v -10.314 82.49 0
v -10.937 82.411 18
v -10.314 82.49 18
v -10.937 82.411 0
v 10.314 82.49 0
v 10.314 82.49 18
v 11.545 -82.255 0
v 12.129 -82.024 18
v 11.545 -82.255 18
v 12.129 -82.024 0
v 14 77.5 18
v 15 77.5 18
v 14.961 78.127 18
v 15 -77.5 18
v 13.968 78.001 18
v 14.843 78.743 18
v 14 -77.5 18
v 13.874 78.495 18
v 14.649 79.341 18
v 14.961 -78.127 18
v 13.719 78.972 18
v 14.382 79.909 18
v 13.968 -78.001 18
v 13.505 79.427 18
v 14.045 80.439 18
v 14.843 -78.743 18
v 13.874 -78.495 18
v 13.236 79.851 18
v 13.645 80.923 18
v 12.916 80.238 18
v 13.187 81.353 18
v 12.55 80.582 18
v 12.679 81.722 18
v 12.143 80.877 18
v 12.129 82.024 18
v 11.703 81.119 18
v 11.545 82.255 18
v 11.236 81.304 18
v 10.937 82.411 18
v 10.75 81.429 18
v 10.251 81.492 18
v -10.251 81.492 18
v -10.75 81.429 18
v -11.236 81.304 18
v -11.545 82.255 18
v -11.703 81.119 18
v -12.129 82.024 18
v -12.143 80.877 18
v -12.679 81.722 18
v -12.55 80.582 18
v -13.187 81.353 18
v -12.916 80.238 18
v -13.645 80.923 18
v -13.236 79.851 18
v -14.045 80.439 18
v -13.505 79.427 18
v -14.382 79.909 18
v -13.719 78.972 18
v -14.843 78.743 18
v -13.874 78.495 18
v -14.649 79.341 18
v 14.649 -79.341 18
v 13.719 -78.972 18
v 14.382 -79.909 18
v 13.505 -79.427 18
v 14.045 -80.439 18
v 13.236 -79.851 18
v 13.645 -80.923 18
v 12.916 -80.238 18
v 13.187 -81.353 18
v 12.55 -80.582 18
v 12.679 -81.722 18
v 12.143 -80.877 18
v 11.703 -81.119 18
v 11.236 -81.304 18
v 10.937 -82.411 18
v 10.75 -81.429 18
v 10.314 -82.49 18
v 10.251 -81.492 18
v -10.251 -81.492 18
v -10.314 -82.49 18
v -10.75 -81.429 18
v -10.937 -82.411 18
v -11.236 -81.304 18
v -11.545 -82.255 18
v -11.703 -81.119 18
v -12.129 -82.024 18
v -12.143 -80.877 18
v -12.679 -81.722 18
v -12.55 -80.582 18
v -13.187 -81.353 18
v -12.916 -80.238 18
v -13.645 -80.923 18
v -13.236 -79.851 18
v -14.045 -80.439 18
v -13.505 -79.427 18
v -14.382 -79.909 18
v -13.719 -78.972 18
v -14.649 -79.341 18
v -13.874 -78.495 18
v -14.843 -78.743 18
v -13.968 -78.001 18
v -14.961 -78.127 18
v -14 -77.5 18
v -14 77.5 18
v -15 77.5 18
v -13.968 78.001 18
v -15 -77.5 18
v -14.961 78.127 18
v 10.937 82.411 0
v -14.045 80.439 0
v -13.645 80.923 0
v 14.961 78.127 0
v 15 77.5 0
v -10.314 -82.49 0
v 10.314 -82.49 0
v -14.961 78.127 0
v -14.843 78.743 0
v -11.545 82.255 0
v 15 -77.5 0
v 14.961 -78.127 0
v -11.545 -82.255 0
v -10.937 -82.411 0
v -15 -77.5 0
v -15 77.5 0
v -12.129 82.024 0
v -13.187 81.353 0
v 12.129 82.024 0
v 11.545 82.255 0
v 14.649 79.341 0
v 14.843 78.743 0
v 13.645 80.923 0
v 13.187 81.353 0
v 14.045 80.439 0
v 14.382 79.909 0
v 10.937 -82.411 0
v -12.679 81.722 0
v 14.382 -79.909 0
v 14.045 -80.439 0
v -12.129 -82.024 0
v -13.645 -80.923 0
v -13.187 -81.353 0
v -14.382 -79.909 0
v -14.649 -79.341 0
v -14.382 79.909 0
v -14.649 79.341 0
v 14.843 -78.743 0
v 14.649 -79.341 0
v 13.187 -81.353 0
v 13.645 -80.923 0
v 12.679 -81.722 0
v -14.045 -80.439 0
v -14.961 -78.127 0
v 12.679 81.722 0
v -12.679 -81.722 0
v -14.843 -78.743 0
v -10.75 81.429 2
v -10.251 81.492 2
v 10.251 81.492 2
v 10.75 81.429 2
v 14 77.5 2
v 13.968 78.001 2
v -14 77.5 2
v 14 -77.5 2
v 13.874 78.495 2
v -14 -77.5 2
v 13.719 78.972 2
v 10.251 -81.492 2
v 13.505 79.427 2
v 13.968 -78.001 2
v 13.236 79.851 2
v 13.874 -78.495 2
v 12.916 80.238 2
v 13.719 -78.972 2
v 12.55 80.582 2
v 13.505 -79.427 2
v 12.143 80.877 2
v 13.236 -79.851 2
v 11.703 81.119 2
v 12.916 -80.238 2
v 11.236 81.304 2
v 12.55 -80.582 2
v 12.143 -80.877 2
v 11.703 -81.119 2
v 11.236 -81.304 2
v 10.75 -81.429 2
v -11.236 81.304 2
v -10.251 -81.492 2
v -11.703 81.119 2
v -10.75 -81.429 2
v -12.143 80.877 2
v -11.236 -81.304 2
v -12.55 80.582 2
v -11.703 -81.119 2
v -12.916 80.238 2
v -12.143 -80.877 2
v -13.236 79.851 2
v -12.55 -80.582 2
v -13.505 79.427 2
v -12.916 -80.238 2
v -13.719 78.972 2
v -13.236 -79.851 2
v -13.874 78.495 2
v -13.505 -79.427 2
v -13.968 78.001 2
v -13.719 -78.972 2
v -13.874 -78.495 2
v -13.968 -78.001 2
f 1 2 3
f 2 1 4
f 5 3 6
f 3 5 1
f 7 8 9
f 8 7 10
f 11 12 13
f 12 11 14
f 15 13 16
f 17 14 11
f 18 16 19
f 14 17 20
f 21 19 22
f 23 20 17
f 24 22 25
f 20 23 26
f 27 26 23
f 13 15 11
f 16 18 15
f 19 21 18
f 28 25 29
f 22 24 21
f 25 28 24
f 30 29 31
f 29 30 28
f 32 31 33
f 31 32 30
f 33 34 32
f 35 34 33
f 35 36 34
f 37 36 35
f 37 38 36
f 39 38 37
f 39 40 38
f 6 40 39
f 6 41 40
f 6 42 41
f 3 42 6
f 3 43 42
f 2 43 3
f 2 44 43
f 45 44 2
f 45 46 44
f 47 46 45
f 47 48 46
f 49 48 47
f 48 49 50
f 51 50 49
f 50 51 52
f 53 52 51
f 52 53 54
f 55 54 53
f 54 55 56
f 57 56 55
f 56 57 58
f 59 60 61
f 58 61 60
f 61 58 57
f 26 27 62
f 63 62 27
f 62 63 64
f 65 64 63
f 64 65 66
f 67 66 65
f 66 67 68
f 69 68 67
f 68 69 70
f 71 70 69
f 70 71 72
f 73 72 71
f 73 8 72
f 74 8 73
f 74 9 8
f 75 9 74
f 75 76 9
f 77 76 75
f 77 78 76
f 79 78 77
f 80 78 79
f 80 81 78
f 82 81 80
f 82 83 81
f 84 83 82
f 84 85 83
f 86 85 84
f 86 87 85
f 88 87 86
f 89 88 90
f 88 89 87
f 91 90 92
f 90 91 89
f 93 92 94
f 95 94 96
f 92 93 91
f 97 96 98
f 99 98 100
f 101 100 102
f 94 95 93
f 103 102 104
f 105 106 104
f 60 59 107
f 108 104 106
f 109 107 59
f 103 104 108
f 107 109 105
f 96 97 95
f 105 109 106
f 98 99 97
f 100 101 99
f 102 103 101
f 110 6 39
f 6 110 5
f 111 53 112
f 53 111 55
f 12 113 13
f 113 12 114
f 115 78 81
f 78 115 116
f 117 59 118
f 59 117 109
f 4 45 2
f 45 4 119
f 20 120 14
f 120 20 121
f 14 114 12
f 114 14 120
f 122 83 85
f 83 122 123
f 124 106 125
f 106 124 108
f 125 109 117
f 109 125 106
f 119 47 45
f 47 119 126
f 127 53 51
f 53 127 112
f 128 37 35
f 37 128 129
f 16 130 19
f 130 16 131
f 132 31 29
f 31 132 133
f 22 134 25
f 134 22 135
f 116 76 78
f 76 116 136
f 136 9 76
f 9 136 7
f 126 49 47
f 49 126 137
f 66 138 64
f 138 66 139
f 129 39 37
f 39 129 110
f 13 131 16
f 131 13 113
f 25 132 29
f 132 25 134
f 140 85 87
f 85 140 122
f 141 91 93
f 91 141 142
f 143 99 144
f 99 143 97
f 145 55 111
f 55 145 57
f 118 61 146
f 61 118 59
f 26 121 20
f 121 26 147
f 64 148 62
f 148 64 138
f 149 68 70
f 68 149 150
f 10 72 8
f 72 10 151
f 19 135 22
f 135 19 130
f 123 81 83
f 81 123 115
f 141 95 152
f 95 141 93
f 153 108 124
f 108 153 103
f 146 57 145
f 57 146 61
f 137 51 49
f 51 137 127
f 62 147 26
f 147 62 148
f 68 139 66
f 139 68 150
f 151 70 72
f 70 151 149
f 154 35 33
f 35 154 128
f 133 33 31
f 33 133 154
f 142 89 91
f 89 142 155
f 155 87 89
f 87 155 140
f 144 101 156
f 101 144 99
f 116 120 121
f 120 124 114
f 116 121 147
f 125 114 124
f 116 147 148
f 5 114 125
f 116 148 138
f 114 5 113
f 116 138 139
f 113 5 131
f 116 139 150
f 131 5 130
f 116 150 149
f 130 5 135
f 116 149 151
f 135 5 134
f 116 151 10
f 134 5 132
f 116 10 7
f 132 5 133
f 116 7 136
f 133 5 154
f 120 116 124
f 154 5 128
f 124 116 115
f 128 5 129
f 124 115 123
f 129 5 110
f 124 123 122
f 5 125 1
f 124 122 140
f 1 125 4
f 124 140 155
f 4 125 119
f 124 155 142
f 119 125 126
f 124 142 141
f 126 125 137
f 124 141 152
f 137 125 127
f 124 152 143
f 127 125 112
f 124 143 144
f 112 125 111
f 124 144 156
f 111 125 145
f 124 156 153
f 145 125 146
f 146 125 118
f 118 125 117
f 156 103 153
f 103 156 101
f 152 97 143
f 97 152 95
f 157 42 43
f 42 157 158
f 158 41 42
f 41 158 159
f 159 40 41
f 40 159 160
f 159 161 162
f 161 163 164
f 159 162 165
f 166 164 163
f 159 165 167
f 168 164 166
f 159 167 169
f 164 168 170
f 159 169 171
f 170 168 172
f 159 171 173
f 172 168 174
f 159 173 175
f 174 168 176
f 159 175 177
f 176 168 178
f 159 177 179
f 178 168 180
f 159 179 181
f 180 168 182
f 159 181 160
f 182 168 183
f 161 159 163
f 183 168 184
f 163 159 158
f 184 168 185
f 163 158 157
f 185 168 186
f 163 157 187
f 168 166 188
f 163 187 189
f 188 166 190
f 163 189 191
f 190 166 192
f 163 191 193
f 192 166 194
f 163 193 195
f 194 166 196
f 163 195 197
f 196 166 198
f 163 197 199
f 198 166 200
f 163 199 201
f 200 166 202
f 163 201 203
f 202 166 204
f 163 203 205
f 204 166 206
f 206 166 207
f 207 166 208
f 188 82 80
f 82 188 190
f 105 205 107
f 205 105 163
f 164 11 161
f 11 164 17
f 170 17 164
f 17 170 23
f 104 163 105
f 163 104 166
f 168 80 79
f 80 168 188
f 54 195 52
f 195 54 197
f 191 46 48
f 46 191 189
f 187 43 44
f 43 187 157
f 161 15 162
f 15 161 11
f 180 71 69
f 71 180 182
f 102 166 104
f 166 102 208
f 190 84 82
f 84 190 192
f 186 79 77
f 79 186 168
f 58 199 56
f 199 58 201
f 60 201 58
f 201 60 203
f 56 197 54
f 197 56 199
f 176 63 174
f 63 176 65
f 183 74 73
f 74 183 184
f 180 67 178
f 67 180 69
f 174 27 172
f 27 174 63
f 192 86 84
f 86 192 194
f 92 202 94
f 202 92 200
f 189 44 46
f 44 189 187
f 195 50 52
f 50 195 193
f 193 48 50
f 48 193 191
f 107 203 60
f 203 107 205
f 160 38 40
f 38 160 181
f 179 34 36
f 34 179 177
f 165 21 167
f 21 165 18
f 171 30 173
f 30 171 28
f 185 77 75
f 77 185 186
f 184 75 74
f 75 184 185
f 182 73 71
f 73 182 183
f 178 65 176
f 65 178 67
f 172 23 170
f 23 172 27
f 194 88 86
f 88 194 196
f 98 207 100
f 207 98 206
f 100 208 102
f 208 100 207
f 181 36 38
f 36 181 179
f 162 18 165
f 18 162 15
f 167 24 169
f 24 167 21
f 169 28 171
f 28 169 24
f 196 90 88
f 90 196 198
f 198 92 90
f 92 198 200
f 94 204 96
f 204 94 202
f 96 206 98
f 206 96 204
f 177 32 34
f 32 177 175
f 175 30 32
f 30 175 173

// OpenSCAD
$fn = 50;


difference() {
	union() {
		hull() {
			translate(v = [-10.0000000000, 77.5000000000, 0]) {
				cylinder(h = 18, r = 5);
			}
			translate(v = [10.0000000000, 77.5000000000, 0]) {
				cylinder(h = 18, r = 5);
			}
			translate(v = [-10.0000000000, -77.5000000000, 0]) {
				cylinder(h = 18, r = 5);
			}
			translate(v = [10.0000000000, -77.5000000000, 0]) {
				cylinder(h = 18, r = 5);
			}
		}
	}
	union() {
		translate(v = [0, 0, 2]) {
			hull() {
				translate(v = [-10.0000000000, 77.5000000000, 0]) {
					cylinder(h = 16, r = 4);
				}
				translate(v = [10.0000000000, 77.5000000000, 0]) {
					cylinder(h = 16, r = 4);
				}
				translate(v = [-10.0000000000, -77.5000000000, 0]) {
					cylinder(h = 16, r = 4);
				}
				translate(v = [10.0000000000, -77.5000000000, 0]) {
					cylinder(h = 16, r = 4);
				}
			}
		}
	}
}
